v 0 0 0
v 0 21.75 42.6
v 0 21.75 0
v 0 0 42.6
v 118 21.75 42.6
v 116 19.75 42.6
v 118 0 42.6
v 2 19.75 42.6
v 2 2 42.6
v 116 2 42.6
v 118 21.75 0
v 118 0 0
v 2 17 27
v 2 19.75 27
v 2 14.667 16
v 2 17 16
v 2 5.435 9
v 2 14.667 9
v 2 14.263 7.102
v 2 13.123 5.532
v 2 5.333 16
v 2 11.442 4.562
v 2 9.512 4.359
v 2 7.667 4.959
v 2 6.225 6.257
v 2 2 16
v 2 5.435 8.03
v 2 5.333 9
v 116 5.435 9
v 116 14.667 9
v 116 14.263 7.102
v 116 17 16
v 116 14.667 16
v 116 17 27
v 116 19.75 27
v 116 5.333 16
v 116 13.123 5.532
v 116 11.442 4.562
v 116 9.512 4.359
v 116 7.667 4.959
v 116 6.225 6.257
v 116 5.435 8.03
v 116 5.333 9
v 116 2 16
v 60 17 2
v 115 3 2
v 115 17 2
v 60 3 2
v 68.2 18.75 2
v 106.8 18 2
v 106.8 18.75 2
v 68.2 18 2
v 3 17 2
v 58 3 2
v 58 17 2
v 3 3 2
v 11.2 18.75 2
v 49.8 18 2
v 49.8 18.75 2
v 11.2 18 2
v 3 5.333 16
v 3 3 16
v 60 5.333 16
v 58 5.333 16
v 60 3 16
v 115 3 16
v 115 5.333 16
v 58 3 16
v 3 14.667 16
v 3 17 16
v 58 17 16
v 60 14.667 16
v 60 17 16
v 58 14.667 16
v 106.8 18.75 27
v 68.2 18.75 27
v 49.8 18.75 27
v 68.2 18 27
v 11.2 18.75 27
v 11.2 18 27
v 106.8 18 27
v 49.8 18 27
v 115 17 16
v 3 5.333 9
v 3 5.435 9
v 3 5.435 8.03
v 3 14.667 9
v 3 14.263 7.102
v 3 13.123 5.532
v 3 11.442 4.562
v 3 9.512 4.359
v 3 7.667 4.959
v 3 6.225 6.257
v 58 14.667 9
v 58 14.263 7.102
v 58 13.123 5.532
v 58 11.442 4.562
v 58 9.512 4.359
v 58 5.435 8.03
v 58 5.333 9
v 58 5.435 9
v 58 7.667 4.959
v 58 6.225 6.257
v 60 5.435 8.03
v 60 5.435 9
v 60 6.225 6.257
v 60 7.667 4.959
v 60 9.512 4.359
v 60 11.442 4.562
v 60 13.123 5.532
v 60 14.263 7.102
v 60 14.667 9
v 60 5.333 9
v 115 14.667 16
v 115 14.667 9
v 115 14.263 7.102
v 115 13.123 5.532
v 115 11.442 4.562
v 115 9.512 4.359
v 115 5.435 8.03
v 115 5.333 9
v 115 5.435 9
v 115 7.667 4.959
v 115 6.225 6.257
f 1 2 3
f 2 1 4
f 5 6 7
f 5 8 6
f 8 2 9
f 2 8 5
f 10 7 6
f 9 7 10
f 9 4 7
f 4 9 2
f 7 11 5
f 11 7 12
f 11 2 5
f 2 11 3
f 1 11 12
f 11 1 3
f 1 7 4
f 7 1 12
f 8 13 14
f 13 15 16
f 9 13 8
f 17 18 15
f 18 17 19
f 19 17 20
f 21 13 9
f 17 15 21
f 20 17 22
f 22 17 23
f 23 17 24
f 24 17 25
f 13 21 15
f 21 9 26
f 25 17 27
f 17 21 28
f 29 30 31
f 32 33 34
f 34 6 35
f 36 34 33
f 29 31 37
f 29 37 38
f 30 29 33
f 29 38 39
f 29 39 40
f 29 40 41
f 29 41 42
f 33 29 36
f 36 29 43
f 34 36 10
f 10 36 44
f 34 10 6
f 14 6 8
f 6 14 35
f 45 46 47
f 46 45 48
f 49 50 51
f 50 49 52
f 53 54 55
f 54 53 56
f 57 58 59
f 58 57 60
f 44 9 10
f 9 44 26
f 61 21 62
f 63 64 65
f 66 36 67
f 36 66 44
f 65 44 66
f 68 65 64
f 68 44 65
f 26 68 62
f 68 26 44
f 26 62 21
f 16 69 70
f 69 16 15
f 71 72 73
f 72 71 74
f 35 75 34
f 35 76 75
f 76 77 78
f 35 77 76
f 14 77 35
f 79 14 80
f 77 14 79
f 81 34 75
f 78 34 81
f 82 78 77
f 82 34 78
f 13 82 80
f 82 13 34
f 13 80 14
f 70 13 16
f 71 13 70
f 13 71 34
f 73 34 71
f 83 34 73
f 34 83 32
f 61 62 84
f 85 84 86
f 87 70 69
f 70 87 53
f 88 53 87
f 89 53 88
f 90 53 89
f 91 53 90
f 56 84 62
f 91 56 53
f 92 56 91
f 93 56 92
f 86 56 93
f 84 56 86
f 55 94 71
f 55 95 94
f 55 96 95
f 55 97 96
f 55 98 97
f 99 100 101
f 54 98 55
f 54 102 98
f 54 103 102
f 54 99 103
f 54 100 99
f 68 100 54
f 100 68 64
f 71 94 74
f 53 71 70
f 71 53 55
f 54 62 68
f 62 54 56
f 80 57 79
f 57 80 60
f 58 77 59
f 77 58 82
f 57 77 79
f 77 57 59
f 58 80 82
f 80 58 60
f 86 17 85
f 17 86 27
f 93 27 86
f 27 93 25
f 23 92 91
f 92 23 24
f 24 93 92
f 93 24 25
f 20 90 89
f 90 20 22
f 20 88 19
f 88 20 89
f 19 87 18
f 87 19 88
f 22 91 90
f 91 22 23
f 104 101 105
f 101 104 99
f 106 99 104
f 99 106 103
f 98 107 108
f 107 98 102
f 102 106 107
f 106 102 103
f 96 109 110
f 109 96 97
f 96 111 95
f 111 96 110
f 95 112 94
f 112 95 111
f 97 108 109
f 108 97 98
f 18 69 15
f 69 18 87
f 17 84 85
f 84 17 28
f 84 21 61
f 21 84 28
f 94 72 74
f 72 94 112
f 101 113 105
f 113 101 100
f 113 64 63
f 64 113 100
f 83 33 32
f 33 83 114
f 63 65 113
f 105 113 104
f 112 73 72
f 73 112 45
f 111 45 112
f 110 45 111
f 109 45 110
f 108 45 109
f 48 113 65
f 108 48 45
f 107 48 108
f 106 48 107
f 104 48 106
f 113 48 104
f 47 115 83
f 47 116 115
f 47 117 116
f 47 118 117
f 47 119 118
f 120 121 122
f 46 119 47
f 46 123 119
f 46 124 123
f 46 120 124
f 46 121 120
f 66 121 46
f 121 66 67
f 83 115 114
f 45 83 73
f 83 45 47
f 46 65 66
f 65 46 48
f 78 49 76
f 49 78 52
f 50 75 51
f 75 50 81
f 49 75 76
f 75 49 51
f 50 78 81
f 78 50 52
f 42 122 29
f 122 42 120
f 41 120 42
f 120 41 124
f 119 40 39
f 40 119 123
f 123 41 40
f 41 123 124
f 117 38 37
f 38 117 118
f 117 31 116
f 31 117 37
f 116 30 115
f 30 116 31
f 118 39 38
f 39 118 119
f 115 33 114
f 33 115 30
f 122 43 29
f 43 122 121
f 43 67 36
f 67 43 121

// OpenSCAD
diceSide = 13.5;
wallThickness = 1;
floorThickness = 2;
dicePerRow = 4;
diceLengthFudgeFactor = 1;
diceWidthFudgeFactor = .5;
diceHeightFudgeFactor = .5;
diceOpeningLength = diceSide * dicePerRow + diceLengthFudgeFactor;
diceOpeningWidth = diceSide + diceWidthFudgeFactor;
diceOpeningHeight = diceSide + diceHeightFudgeFactor;
dividerInnerOpeningLength = 38.1 + .5; //TODO: Get this correct
dividerInnerOpeningWidth = .75; //TODO: Get this correct
dividerInnerOpeningHeight = 25; //TODO: Get this correct
magnetHoleWidth = 0;
boxLength = diceOpeningLength + wallThickness * 2;
boxWidth = diceOpeningWidth + wallThickness + (wallThickness * 2 + dividerInnerOpeningWidth);
outerWallThickness = 2;
fullDividerHeight = 38.1 + .5;
extraHeight = 2;
numRows = 1;

difference() {
    union() {
        translate([outerWallThickness, outerWallThickness, 0]) {
            for(i=[0:numRows - 1]) {
                translate([0, i >= numRows/2 ? magnetHoleWidth + wallThickness * 2 : 0, 0]) {
                    translate([0, i * (boxWidth), 0])
                        SingleDiceBox();
                    translate([boxLength, i * boxWidth, 0])
                        SingleDiceBox();
                }
            }
        }
        difference(){
            cube([
                boxLength * 2 + outerWallThickness * 2,
                boxWidth * numRows + outerWallThickness + magnetHoleWidth + wallThickness * 2,
                floorThickness + fullDividerHeight + extraHeight]);
            translate([outerWallThickness, outerWallThickness, floorThickness])
                cube([boxLength * 2, boxWidth * numRows - outerWallThickness + magnetHoleWidth + wallThickness * 2, fullDividerHeight + extraHeight]);
        }
    }
    translate([outerWallThickness, outerWallThickness, 0]) {
        translate([(boxLength * 2)/2 - magnetHoleWidth/2, boxWidth * numRows/2 + wallThickness, 0])
            cube([magnetHoleWidth, magnetHoleWidth, 100]);
    }
}

module SingleDiceBox() {
    //TODO: Minkowski
    difference() {
        union() {
            cube([
                boxLength,
                boxWidth,
                diceOpeningHeight + floorThickness
            ]);
            translate([0, wallThickness + diceOpeningWidth, 0])
                cube([boxLength, wallThickness * 2 + dividerInnerOpeningWidth, floorThickness + dividerInnerOpeningHeight]);
        }
        translate([wallThickness, wallThickness, floorThickness])
            cube([diceOpeningLength, diceOpeningWidth, diceOpeningHeight]);
        translate([
            boxLength/2 - dividerInnerOpeningLength/2,
            wallThickness + diceOpeningWidth + wallThickness,
            floorThickness])
            cube([dividerInnerOpeningLength, dividerInnerOpeningWidth, dividerInnerOpeningHeight]);
        

    
        translate([0,wallThickness + diceOpeningWidth * 1/2,diceOpeningWidth * 1/2 + floorThickness])
            rotate([90, 0, 90])
                cylinder(h=wallThickness, d=diceOpeningWidth * 2/3);
        
        translate([diceOpeningLength + wallThickness,wallThickness + diceOpeningWidth * 1/2,diceOpeningWidth * 1/2 + floorThickness])
            rotate([90, 0, 90])
                cylinder(h=wallThickness, d=diceOpeningWidth * 2/3);
        
        translate([0, wallThickness + diceOpeningWidth * 1/6, floorThickness + diceOpeningWidth * 1/2])
            cube([wallThickness, diceOpeningWidth * 2/3, diceOpeningWidth * 2/3]);
        
        translate([diceOpeningLength + wallThickness, wallThickness + diceOpeningWidth * 1/6, floorThickness + diceOpeningWidth * 1/2])
            cube([wallThickness, diceOpeningWidth * 2/3, diceOpeningWidth * 2/3]);
    }
    
    
}

//TODO:
//Finger notches?
//Test print
